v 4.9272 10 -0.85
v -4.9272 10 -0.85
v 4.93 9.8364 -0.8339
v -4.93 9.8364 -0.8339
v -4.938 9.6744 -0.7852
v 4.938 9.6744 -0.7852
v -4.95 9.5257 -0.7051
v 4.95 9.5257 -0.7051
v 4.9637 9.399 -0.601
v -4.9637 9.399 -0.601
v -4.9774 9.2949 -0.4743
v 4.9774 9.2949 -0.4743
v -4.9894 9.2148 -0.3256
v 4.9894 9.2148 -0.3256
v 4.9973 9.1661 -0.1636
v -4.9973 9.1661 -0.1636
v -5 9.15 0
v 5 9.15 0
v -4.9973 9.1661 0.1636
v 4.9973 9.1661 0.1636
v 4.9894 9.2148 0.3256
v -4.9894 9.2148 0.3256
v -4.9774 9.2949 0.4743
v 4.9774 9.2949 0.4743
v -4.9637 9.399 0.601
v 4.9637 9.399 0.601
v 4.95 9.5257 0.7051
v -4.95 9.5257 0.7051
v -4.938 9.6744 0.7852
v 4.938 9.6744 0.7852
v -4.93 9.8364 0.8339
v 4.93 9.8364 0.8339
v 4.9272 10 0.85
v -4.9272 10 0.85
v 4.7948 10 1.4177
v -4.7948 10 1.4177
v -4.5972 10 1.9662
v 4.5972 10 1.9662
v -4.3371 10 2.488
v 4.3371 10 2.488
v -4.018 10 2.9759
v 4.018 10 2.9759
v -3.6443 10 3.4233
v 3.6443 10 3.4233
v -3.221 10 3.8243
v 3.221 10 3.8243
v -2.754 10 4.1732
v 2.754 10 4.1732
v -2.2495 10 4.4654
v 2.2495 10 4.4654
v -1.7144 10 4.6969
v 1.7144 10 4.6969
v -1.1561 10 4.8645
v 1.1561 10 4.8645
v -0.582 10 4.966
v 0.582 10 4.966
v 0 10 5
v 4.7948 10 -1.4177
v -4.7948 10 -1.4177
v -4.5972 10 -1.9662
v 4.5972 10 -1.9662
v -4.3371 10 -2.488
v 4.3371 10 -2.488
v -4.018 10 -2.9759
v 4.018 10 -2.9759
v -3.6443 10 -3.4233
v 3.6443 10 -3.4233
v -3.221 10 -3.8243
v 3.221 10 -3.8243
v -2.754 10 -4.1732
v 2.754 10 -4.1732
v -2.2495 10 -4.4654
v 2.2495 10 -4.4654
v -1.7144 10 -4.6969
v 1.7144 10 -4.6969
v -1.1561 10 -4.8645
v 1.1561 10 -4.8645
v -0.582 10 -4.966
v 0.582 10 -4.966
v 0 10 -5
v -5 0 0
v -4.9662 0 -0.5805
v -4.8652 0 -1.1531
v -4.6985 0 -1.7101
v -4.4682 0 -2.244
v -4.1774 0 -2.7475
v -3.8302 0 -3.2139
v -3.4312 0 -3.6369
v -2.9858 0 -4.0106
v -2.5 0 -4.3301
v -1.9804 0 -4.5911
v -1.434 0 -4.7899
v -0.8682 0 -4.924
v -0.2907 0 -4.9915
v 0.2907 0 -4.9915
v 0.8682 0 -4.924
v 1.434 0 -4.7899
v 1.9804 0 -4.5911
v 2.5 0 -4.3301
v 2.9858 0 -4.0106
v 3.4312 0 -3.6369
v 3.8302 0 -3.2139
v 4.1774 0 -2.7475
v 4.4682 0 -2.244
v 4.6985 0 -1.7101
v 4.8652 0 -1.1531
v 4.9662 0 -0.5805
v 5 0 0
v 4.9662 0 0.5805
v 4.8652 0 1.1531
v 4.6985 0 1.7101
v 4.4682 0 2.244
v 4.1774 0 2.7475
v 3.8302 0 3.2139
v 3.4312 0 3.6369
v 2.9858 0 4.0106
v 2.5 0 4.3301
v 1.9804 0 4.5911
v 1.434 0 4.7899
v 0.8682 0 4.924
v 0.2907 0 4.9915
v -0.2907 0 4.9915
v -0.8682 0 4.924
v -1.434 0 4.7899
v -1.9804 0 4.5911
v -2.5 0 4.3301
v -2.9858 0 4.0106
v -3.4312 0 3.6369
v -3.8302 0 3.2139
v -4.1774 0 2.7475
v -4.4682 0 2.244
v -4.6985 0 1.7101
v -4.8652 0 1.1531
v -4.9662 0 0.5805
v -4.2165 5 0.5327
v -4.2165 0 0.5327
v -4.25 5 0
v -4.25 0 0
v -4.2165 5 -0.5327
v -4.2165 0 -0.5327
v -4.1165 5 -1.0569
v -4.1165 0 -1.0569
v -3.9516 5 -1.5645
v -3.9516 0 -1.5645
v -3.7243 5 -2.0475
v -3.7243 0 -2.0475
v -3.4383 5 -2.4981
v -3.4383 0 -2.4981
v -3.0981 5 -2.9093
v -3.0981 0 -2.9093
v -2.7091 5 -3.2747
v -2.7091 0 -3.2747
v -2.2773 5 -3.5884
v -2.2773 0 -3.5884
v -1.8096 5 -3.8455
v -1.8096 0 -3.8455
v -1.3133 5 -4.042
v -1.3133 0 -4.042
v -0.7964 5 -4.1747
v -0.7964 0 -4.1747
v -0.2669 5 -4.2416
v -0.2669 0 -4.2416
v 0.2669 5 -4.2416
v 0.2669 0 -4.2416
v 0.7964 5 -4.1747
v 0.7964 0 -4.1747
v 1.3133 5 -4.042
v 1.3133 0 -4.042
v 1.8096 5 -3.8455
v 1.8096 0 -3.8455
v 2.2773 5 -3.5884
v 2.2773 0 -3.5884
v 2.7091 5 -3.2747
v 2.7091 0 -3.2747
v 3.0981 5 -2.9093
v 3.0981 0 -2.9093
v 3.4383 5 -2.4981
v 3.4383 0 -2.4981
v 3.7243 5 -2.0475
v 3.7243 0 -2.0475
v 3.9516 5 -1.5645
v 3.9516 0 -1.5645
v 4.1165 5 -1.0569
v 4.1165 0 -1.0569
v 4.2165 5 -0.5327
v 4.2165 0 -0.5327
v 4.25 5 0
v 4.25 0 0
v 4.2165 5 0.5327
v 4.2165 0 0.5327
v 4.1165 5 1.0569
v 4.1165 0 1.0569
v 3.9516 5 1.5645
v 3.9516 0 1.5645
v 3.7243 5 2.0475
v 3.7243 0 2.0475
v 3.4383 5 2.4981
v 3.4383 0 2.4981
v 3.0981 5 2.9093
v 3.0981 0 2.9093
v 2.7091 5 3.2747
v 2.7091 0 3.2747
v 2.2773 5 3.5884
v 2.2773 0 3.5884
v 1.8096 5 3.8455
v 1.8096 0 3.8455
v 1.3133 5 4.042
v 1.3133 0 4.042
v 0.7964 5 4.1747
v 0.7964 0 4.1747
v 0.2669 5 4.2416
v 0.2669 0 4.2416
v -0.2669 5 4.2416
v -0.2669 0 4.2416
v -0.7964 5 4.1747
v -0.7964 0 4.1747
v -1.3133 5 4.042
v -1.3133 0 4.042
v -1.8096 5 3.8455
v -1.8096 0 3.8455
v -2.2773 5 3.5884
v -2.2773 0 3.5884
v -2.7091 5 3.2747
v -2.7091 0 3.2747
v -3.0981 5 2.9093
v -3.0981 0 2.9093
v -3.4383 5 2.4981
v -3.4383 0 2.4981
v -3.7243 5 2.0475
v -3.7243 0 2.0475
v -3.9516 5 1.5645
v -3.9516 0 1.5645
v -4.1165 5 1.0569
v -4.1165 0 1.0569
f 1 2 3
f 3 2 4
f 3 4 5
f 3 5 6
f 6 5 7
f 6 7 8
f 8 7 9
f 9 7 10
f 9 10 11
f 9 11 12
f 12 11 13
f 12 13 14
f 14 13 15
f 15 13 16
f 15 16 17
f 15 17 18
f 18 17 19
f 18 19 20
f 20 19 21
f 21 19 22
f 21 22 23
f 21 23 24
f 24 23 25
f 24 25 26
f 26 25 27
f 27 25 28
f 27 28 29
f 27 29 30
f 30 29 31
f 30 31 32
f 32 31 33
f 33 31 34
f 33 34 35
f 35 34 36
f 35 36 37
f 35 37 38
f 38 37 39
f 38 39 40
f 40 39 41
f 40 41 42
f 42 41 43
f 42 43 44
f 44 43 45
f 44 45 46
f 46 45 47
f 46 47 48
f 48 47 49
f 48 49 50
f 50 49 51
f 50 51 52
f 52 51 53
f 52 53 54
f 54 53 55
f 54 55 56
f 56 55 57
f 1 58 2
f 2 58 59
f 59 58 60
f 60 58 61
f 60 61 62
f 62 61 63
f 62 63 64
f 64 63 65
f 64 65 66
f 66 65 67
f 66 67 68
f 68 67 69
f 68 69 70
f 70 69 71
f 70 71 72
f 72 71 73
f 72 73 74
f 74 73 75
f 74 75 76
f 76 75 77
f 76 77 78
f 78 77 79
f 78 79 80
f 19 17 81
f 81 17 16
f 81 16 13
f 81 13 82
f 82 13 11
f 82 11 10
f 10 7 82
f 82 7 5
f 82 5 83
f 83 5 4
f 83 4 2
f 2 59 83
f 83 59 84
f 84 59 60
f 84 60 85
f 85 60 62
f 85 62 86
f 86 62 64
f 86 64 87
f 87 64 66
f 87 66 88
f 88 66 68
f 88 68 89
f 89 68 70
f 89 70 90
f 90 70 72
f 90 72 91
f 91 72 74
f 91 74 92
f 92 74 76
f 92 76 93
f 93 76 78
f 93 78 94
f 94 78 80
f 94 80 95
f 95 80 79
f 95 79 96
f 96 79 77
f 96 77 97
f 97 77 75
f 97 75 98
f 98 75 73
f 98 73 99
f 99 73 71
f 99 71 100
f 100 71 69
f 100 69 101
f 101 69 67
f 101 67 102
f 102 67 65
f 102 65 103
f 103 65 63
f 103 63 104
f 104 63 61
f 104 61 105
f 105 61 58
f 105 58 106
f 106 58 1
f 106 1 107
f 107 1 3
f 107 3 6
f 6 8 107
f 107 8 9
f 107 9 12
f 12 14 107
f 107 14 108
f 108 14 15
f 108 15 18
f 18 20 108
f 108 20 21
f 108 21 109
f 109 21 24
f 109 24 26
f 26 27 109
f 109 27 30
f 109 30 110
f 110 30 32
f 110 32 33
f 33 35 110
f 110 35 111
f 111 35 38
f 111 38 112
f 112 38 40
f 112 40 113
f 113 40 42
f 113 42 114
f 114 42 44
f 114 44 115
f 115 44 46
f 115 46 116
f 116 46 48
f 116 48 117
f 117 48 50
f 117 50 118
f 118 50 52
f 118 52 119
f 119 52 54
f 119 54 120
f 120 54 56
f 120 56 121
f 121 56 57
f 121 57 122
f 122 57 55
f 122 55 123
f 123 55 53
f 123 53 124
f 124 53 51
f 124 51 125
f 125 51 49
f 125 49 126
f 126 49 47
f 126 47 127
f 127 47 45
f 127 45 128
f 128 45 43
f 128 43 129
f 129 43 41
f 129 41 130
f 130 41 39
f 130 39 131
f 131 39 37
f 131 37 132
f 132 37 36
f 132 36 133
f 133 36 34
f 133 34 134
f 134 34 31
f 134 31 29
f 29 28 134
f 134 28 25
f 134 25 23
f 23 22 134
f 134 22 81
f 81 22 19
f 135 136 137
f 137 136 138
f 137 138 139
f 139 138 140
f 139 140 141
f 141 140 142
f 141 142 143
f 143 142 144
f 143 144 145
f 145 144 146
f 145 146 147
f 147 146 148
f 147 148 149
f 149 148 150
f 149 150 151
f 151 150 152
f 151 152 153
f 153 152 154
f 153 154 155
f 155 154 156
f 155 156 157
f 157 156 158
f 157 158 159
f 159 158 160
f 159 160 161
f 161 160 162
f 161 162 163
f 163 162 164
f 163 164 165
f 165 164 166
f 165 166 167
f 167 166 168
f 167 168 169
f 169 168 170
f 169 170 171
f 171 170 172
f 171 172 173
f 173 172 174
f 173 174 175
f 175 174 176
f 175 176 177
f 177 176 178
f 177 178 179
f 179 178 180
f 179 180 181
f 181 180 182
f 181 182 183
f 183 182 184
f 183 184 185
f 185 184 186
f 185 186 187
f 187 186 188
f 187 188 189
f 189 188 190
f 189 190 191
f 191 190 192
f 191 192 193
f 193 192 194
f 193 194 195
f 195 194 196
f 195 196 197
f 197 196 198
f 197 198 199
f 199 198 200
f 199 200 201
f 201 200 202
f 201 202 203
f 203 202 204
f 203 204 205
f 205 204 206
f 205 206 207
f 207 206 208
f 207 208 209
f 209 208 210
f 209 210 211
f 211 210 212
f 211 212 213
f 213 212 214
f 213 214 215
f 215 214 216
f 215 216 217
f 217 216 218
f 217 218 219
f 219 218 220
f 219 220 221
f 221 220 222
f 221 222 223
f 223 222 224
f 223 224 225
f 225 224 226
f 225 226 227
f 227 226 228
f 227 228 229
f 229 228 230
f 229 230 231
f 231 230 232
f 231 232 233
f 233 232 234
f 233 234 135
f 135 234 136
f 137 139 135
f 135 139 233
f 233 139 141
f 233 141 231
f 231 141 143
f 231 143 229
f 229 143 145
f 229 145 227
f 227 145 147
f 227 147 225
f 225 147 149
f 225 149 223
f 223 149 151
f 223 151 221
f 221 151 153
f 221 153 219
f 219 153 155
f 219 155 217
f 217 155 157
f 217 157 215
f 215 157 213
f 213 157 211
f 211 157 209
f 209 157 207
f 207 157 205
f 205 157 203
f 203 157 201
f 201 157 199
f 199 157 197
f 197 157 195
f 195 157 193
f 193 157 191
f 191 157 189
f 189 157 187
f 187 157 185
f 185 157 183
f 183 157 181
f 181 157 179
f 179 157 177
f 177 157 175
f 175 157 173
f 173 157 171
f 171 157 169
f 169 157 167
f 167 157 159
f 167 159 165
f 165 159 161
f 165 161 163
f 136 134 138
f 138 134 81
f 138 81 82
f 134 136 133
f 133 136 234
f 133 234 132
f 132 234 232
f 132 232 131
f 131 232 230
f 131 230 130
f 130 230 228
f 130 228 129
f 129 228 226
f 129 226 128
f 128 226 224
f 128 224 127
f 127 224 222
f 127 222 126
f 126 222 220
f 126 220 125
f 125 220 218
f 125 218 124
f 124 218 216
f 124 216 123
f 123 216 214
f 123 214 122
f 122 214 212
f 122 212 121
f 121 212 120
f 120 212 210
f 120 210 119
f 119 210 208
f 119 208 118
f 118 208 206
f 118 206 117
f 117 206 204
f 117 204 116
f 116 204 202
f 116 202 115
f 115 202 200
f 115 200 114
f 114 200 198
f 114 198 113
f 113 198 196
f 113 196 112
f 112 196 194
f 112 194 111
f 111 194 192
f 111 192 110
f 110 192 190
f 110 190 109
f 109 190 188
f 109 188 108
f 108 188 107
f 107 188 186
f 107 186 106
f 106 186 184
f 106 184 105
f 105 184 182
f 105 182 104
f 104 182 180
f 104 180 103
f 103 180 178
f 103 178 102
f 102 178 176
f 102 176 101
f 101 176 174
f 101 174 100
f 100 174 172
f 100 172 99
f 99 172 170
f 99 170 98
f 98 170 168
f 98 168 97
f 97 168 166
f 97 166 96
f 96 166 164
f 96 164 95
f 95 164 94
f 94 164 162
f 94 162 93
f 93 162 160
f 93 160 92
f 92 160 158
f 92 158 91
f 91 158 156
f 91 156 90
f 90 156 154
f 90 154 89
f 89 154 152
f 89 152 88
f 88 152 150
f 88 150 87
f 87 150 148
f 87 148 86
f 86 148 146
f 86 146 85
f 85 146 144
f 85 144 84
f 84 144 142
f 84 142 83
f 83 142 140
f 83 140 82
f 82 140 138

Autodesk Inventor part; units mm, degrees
ref_plane "YZ Plane" through (0, 0, 0) normal (1, 0, 0) x (0, 1, 0)
ref_plane "XZ Plane" through (0, 0, 0) normal (0, 1, 0) x (-1, 0, 0)
ref_plane "XY Plane" through (0, 0, 0) normal (0, 0, 1) x (1, 0, 0)
sketch "Sketch1" plane through (0, 0, 0) normal (0, 1, 0) x (-1, 0, 0)
  circle A0 centre (0, 0) radius 5
  circle A1 centre (0, 0) radius 4.25
  dimension "d0" = 10
  dimension "d1" = 8.5
extrude "Extrusion1" add sketch "Sketch1" along normal blind 10 contours A0 | A1
extrude "Extrusion2" cut sketch "Sketch1" along normal blind 5 contours A1
sketch "Sketch3" plane through (0, 0, 0) normal (1, 0, 0) x (0, 1, 0)
  circle A0 centre (10, 0) radius 0.85
  line L0 (0, -5) -> (10, -5) projected
  line L1 (0, 5) -> (10, 5) projected
  line L2 (10, -5) -> (10, 5) projected
  point P0 (0, 0)
  point P1 (10, -0.85)
  point P2 (10, 0.85)
  dimension "d9" = 1.7
  dimension "d10" = 5
extrude "Extrusion4" cut sketch "Sketch3" along normal mid plane 10 contours L2 A0 picked at (9.5995, 0.1005)
properties part number "rodamiento"
